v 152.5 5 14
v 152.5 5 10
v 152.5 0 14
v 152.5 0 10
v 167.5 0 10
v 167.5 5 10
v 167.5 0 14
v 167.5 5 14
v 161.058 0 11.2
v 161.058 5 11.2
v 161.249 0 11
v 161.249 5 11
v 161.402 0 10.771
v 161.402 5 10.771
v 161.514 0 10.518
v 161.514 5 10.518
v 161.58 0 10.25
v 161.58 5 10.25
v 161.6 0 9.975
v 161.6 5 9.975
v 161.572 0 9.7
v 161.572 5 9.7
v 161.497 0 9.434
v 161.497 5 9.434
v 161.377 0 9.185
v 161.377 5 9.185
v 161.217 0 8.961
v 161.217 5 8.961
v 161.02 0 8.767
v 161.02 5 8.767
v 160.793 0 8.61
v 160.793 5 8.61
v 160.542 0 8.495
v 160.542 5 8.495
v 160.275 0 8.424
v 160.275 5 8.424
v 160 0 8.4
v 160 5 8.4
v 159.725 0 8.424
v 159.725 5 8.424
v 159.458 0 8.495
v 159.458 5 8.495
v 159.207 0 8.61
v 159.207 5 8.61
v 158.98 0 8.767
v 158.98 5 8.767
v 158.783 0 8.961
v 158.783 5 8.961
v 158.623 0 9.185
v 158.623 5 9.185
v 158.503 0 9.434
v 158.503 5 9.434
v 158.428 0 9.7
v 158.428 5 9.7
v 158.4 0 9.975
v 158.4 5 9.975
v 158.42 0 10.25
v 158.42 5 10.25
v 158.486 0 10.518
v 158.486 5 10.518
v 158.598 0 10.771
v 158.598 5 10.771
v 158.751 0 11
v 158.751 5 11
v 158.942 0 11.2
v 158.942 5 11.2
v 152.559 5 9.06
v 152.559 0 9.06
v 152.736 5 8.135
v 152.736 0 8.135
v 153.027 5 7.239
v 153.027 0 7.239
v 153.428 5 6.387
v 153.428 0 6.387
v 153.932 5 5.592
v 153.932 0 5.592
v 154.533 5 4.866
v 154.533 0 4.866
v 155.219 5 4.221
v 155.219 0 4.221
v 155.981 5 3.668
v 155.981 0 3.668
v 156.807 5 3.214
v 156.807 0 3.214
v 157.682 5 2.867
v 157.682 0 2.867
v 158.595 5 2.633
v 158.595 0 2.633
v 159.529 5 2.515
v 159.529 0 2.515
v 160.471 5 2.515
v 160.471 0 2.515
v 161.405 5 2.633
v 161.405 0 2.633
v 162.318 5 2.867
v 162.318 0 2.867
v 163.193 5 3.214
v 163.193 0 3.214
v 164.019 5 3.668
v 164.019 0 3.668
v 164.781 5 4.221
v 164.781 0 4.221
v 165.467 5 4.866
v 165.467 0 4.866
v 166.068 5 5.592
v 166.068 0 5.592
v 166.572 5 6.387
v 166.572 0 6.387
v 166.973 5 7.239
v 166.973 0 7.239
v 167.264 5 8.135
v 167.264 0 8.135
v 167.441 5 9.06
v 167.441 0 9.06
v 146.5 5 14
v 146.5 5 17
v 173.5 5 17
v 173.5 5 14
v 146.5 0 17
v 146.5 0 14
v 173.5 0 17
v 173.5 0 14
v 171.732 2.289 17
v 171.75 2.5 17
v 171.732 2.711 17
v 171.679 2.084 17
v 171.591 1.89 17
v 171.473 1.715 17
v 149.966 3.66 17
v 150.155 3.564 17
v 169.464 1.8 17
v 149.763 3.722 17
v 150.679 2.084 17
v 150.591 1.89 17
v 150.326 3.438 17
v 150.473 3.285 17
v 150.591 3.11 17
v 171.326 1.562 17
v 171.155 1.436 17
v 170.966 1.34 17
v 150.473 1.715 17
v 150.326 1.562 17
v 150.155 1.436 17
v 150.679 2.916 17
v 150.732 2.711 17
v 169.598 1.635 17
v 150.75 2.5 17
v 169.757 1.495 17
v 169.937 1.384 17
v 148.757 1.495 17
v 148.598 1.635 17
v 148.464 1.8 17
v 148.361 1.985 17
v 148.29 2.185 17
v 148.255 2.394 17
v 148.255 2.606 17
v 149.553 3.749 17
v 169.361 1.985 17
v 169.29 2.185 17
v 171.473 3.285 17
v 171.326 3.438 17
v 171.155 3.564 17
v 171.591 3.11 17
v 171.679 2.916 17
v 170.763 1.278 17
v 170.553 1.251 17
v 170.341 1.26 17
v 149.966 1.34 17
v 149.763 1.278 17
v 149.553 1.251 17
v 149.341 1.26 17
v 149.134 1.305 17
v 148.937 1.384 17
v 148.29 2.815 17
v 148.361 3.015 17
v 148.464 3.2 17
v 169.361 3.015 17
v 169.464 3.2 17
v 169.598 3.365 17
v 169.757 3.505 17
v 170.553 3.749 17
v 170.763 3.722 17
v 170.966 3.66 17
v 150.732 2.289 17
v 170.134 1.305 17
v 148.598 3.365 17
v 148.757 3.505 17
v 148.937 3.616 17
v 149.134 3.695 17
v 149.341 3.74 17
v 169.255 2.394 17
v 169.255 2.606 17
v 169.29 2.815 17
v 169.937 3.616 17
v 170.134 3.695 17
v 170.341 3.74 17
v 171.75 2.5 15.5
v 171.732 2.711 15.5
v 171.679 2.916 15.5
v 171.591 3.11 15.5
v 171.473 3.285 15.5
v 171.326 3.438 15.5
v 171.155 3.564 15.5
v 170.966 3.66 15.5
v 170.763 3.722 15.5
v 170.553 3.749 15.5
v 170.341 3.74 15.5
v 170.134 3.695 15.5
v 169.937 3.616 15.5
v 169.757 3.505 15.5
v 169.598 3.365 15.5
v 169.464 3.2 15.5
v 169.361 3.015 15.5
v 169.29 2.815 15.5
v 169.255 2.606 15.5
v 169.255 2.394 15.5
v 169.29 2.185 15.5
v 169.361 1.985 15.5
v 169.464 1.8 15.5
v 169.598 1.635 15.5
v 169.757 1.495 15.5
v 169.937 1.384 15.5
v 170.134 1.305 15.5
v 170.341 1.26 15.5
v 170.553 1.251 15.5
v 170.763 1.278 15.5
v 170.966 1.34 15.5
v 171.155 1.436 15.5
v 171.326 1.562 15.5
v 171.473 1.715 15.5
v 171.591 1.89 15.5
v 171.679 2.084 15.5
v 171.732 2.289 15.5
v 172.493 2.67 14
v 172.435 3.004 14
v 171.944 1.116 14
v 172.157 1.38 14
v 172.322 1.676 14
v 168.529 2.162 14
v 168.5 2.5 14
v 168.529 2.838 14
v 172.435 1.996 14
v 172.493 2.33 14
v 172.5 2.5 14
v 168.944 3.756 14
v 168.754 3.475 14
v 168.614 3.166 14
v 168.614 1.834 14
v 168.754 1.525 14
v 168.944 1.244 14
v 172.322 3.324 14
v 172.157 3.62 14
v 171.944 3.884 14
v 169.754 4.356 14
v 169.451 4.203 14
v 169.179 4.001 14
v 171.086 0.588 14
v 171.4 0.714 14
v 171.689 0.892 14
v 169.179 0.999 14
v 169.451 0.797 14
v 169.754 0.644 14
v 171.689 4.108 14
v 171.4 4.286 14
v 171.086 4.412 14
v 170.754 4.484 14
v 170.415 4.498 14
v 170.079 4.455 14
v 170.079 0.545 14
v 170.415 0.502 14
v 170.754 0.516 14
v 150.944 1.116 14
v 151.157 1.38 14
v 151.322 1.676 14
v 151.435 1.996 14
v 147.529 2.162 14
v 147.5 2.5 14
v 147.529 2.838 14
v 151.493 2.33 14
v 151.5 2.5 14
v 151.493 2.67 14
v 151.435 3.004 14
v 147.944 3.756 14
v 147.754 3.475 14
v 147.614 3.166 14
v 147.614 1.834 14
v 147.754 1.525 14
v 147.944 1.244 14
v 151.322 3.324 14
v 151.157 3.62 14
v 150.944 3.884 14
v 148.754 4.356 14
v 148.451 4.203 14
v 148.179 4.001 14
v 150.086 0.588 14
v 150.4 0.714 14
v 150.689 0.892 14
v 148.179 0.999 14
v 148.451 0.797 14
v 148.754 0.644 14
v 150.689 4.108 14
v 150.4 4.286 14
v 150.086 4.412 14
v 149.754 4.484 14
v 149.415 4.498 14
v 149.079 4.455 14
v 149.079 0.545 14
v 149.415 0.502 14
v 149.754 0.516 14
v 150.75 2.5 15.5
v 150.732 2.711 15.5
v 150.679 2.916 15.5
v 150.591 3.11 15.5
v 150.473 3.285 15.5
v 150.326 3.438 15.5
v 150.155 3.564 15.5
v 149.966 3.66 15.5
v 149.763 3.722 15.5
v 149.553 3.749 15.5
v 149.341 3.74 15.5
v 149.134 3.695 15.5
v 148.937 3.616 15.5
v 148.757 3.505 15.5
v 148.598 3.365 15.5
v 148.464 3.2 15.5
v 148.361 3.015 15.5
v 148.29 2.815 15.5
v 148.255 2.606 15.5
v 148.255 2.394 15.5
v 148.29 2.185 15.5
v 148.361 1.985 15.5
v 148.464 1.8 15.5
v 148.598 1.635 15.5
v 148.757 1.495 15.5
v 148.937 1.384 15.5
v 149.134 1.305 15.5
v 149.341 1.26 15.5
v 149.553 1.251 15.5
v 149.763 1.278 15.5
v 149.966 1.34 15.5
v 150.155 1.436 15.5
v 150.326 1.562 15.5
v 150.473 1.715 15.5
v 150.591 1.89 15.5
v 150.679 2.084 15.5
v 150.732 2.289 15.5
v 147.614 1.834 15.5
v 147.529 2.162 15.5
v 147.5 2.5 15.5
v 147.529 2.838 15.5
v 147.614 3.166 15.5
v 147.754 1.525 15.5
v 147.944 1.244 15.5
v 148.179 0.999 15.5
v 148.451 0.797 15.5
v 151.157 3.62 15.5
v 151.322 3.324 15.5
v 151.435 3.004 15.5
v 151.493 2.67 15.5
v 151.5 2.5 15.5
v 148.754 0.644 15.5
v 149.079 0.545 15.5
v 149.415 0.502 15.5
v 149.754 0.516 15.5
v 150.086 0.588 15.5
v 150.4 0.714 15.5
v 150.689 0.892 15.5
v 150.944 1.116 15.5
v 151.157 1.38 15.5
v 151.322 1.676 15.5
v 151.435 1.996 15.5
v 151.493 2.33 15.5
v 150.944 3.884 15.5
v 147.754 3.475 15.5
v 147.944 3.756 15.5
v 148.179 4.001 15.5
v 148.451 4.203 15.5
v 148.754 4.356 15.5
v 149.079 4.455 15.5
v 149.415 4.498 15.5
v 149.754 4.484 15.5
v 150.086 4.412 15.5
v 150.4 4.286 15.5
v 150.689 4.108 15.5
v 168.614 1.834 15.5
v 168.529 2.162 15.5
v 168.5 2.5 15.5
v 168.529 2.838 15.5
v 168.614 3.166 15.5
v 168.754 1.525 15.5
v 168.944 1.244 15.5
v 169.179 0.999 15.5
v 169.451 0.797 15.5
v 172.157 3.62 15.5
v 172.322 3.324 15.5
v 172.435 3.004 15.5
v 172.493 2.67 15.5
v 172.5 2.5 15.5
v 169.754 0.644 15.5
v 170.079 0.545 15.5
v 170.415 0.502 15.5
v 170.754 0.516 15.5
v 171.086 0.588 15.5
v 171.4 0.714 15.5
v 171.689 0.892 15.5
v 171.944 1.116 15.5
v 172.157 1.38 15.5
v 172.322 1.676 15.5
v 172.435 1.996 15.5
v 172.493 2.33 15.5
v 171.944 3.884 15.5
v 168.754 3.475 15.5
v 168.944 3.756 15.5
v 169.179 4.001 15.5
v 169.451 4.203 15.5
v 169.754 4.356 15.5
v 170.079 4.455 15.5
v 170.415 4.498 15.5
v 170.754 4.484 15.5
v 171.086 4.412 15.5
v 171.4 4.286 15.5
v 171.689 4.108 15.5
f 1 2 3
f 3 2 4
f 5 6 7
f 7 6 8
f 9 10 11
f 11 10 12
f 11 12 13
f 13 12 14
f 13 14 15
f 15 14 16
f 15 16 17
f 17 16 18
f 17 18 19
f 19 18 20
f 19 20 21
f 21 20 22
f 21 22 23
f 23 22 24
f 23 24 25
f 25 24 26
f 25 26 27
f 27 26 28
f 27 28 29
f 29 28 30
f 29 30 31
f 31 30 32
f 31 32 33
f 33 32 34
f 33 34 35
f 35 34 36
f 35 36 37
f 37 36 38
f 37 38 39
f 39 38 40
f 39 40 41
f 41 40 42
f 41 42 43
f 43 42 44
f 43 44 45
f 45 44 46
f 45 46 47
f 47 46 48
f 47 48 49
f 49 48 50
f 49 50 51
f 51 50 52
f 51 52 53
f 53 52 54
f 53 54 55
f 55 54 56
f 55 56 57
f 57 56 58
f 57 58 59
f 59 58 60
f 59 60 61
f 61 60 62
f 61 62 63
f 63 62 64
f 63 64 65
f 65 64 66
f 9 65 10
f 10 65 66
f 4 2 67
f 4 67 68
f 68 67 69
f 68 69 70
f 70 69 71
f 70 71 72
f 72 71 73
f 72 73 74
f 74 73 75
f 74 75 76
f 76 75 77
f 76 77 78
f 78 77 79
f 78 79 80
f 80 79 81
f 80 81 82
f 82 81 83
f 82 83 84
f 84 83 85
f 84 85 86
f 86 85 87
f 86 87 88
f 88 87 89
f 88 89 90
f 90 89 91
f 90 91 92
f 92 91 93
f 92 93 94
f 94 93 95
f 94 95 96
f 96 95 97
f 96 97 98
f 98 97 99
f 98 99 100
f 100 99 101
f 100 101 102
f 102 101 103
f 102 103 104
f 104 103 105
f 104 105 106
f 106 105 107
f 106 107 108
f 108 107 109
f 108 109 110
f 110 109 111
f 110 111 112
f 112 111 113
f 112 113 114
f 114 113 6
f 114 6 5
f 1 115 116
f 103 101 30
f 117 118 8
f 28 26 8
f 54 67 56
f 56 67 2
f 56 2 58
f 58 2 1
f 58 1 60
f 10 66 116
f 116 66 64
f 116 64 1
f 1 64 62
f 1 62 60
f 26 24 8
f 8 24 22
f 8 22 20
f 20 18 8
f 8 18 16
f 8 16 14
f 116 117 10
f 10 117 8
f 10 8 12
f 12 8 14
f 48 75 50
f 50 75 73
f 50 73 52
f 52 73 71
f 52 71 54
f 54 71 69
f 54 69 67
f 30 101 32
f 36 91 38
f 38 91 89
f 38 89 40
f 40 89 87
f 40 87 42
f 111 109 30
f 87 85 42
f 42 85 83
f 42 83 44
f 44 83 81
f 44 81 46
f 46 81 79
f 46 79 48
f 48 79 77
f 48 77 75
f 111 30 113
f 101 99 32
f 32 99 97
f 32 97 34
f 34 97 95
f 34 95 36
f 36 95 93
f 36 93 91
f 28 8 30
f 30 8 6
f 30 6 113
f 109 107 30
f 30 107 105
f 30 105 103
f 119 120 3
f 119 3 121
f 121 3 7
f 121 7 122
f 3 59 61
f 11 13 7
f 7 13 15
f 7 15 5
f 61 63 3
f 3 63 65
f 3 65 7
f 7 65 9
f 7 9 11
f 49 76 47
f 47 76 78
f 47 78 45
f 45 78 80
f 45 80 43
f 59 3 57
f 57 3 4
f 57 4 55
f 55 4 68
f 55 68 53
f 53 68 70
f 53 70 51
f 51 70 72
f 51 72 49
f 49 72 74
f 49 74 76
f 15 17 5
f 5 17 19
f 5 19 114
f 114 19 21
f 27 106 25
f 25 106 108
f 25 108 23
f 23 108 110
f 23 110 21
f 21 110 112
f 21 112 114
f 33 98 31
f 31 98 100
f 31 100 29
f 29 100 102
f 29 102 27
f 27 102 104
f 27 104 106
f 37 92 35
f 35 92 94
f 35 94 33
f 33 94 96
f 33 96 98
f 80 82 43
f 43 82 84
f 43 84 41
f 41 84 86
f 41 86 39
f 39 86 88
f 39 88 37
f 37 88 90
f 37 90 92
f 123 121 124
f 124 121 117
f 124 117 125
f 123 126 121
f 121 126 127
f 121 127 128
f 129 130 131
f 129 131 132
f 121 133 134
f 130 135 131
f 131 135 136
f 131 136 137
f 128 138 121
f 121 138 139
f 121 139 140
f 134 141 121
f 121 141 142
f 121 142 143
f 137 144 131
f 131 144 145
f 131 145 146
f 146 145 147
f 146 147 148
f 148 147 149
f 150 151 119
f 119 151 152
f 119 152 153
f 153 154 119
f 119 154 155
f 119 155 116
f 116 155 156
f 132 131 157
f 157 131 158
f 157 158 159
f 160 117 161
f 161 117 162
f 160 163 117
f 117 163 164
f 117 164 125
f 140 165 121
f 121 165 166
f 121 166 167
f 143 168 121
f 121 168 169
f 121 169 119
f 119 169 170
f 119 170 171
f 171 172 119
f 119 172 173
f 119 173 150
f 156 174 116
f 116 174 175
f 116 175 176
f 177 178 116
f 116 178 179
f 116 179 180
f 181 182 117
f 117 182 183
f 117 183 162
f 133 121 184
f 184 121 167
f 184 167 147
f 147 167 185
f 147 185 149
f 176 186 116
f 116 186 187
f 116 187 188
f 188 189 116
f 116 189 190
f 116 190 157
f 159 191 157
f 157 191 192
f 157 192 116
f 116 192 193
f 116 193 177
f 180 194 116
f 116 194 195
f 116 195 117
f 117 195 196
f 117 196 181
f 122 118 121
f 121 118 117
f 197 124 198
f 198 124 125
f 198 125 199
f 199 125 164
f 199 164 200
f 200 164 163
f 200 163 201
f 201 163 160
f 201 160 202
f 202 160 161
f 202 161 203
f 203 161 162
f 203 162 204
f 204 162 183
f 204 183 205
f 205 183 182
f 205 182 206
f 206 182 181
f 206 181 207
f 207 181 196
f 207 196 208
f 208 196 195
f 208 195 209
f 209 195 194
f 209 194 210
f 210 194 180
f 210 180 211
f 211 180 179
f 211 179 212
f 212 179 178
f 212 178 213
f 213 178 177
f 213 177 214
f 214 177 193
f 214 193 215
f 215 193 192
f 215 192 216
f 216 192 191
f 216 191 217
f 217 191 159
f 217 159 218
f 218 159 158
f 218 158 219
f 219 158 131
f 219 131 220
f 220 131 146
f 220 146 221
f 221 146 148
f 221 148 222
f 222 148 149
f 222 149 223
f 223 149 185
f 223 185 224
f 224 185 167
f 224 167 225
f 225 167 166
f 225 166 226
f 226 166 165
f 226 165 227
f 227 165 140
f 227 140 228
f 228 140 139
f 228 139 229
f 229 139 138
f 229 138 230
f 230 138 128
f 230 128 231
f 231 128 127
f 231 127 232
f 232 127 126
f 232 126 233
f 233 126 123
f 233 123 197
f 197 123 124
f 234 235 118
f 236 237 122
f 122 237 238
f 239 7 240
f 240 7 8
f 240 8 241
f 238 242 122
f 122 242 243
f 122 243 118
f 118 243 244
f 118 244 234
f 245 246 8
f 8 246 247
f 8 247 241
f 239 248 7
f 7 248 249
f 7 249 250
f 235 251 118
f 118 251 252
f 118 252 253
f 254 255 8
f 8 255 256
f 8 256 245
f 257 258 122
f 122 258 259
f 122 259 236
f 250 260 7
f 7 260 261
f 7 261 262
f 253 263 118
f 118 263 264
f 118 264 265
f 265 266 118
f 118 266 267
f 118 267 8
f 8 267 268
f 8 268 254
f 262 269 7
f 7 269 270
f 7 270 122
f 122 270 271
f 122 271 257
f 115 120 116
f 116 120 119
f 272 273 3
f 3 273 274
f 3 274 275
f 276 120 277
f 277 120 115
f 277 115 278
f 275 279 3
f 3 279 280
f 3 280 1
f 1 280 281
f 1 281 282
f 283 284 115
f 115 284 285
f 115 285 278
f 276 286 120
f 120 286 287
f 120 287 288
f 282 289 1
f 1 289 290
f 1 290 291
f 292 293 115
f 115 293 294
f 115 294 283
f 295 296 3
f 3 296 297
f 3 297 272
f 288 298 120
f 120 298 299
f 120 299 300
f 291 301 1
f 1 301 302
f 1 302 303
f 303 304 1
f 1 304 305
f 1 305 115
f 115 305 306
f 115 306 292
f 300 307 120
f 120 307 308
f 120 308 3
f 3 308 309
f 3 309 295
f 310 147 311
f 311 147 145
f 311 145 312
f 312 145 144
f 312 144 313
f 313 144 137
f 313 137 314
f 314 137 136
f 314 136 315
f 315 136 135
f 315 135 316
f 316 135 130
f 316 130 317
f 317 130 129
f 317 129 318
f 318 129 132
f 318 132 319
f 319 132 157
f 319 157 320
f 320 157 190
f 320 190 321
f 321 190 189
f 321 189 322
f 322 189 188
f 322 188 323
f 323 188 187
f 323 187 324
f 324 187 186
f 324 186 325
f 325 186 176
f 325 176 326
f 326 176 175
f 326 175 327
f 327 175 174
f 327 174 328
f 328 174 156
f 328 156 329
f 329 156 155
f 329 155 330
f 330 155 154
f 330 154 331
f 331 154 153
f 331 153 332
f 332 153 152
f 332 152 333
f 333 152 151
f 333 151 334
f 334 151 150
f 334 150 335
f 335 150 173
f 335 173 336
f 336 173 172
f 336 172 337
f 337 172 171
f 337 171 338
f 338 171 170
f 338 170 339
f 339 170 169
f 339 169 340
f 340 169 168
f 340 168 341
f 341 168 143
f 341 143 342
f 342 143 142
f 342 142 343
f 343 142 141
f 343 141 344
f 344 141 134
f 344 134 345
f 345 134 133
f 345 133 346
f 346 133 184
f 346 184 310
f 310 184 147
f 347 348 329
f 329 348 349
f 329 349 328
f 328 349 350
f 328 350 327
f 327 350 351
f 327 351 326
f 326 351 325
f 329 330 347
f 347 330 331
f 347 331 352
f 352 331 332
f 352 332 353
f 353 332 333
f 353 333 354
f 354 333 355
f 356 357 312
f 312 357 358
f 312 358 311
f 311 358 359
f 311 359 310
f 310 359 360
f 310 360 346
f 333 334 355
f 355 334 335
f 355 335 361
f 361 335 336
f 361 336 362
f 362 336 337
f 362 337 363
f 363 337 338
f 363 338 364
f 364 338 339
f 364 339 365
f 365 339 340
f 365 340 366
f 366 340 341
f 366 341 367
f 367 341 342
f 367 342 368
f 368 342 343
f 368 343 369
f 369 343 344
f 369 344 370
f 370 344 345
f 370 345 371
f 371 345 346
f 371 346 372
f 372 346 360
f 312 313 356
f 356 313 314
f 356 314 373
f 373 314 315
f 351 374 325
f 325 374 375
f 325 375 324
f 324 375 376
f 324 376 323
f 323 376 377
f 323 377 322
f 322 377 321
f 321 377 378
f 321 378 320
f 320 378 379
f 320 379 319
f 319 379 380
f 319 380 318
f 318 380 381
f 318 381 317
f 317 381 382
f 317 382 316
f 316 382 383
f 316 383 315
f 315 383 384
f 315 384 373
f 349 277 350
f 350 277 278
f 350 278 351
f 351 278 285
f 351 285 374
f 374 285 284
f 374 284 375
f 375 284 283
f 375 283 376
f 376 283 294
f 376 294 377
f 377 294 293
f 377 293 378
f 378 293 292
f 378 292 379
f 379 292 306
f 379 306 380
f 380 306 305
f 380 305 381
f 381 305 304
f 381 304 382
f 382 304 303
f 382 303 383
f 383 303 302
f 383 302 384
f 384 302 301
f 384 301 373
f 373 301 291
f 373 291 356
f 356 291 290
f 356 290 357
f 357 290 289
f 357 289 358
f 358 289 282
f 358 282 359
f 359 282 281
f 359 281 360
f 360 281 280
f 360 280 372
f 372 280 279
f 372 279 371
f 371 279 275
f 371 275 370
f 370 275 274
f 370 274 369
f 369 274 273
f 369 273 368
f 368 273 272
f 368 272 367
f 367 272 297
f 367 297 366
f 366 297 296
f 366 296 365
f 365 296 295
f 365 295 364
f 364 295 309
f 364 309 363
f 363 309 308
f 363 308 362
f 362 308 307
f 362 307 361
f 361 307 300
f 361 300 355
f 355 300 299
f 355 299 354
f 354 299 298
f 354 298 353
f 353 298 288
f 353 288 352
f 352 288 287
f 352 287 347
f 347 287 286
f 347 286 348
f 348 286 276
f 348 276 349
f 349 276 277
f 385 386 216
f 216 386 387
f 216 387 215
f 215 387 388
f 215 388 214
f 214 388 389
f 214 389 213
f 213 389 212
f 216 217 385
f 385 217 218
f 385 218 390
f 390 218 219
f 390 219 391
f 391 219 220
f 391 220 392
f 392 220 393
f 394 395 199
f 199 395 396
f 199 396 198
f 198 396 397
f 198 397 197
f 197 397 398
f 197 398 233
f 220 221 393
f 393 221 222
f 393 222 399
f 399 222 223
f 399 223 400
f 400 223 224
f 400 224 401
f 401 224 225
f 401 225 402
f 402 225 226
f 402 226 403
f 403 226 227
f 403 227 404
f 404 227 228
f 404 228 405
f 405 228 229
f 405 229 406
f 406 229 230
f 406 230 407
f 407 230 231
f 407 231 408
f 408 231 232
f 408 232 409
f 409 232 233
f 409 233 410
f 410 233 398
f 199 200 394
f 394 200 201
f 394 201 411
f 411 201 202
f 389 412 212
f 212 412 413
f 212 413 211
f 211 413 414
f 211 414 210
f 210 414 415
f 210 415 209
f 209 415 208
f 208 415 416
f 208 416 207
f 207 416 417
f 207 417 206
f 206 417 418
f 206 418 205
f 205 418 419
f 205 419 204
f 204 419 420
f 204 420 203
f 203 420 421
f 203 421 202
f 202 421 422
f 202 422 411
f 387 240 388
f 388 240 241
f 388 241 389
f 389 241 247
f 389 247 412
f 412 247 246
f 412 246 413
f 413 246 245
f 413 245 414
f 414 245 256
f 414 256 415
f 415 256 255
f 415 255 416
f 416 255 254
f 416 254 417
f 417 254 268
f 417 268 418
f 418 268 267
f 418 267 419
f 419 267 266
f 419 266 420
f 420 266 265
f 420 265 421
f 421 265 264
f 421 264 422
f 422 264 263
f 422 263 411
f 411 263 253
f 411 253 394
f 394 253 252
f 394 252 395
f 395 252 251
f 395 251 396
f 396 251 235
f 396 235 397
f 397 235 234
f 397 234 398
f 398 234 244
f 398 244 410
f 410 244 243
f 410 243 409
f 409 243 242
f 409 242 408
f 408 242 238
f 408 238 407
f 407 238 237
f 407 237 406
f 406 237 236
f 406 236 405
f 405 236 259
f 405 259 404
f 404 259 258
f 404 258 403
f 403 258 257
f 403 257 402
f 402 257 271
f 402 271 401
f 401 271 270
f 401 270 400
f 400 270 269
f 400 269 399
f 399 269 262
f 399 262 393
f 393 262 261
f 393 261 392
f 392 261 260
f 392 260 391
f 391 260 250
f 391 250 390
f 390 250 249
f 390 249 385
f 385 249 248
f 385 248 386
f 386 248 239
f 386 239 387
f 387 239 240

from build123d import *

# Parameters (mm, degrees)
SKETCH_2_W          = 170
SKETCH_2_H          = 20
EXTRUDE_1_DEPTH     = 23
CUT_EXTRUDE_1_DEPTH = 173.710740836
SKETCH_4_W          = 17
SKETCH_4_H          = 13
CUT_EXTRUDE_2_DEPTH = 30
CUT_EXTRUDE_3_DEPTH = 173.710740836
SKETCH_6_W          = 67.5
SKETCH_6_H          = 3
SKETCH_6_W_2        = 15
SKETCH_6_H_2        = 14.5
CUT_EXTRUDE_4_DEPTH = 173.710740836
SKETCH_7_W          = 25.348417758
SKETCH_7_H          = 9.515527538
CUT_EXTRUDE_5_DEPTH = 33.295510524
SKETCH_8_W          = 27
SKETCH_8_H          = 5
SKETCH_8_R          = 1.25
EXTRUDE_2_DEPTH     = 3
CUT_EXTRUDE_START   = -3
SKETCH_8_3_R        = 2
CUT_EXTRUDE_6_DEPTH = 1.5


with BuildPart() as part:
    # 草图2 → 凸台-拉伸1 (new body)
    with BuildSketch(Plane(origin=(0, 0, 0), x_dir=(1, 0, 0), z_dir=(0, 1, 0))):
        with Locations((85, -10)):
            Rectangle(SKETCH_2_W, SKETCH_2_H)
    extrude(amount=EXTRUDE_1_DEPTH)

    # 草图3 → 切除-拉伸1 (cut, through all)
    with BuildSketch(Plane(origin=(0, 23, 0), x_dir=(1, 0, 0), z_dir=(0, 1, 0))):
        with BuildLine():
            ThreePointArc((161.6, -10), (159.341699476, -8.541699476), (158.941699476, -11.2))
            Line((158.941699476, -11.2), (161.058300524, -11.2))
            ThreePointArc((161.058300524, -11.2), (161.458300524, -10.658300524), (161.6, -10))
        make_face()
        with BuildLine():
            ThreePointArc((126.6, -10), (124.341699476, -8.541699476), (123.941699476, -11.2))
            Line((123.941699476, -11.2), (126.058300524, -11.2))
            ThreePointArc((126.058300524, -11.2), (126.458300524, -10.658300524), (126.6, -10))
        make_face()
    extrude(amount=-CUT_EXTRUDE_1_DEPTH, mode=Mode.SUBTRACT)

    # 草图4 → 切除-拉伸2 (cut)
    with BuildSketch(Plane(origin=(170, 0, 0), x_dir=(0, 0, -1), z_dir=(1, 0, 0))):
        with Locations((-8.5, 11.5)):
            Rectangle(SKETCH_4_W, SKETCH_4_H)
    extrude(amount=-CUT_EXTRUDE_2_DEPTH, mode=Mode.SUBTRACT)

    # 草图5 → 切除-拉伸3 (cut, through all)
    with BuildSketch(Plane(origin=(0, 23, 0), x_dir=(1, 0, 0), z_dir=(0, 1, 0))):
        with BuildLine():
            Line((117.5, -17), (117.5, -10))
            ThreePointArc((117.5, -10), (125, -2.5), (132.5, -10))
            Line((132.5, -10), (132.5, -17))
            Line((132.5, -17), (152.5, -17))
            Line((152.5, -17), (152.5, -10))
            ThreePointArc((152.5, -10), (160, -2.5), (167.5, -10))
            Line((167.5, -10), (167.5, -17))
            Line((167.5, -17), (170, -17))
            Line((170, -17), (170, 0))
            Line((170, 0), (0, 0))
            Line((0, 0), (0, -20))
            Line((0, -20), (102.5, -20))
            Line((102.5, -20), (102.5, -17))
            Line((102.5, -17), (117.5, -17))
        make_face()
    extrude(amount=-CUT_EXTRUDE_3_DEPTH, mode=Mode.SUBTRACT)

    # 草图6 → 切除-拉伸4 (cut, through all)
    with BuildSketch(Plane(origin=(0, 23, 0), x_dir=(1, 0, 0), z_dir=(0, 1, 0))):
        with Locations((136.25, -18.5)):
            Rectangle(SKETCH_6_W, SKETCH_6_H)
        with Locations((125, -9.75)):
            Rectangle(SKETCH_6_W_2, SKETCH_6_H_2)
    extrude(amount=-CUT_EXTRUDE_4_DEPTH, mode=Mode.SUBTRACT)


with BuildPart() as cut_extrude_4_piece_1:
    # of the separate pieces the step leaves, piece 1, a body of its own (cut_extrude_4_pieces)
    add(part.part.solids().sort_by_distance((167.5, 23, 10))[0])

    # 草图7 → 切除-拉伸5 (cut, through all)
    with BuildSketch(Plane.ZY.offset(-152.5)):
        with Locations((10.223802201, 19.727293576)):
            Rectangle(SKETCH_7_W, SKETCH_7_H)
    extrude(amount=-CUT_EXTRUDE_5_DEPTH, mode=Mode.SUBTRACT)


with BuildPart() as cut_extrude_4_piece_2:
    # of the separate pieces the step leaves, piece 2, a body of its own (cut_extrude_4_pieces)
    add(part.part.solids().sort_by_distance((167.5, 0, 17))[0])

    # 草图8 → 凸台-拉伸2 (add)
    with BuildSketch(Plane.XY.offset(17)):
        with Locations((160, 2.5)):
            Rectangle(SKETCH_8_W, SKETCH_8_H)
        with Locations((149.5, 2.5)):
            Circle(SKETCH_8_R, mode=Mode.SUBTRACT)
        with Locations((170.5, 2.5)):
            Circle(SKETCH_8_R, mode=Mode.SUBTRACT)
    extrude(amount=-EXTRUDE_2_DEPTH)

    # 草图8<3> → 切除-拉伸6 (cut)
    with BuildSketch(Plane.XY.offset(17).offset(CUT_EXTRUDE_START)):
        with Locations((170.5, 2.5)):
            Circle(SKETCH_8_3_R)
        with Locations((149.5, 2.5)):
            Circle(SKETCH_8_3_R)
    extrude(amount=CUT_EXTRUDE_6_DEPTH, mode=Mode.SUBTRACT)


solid = cut_extrude_4_piece_2.part
